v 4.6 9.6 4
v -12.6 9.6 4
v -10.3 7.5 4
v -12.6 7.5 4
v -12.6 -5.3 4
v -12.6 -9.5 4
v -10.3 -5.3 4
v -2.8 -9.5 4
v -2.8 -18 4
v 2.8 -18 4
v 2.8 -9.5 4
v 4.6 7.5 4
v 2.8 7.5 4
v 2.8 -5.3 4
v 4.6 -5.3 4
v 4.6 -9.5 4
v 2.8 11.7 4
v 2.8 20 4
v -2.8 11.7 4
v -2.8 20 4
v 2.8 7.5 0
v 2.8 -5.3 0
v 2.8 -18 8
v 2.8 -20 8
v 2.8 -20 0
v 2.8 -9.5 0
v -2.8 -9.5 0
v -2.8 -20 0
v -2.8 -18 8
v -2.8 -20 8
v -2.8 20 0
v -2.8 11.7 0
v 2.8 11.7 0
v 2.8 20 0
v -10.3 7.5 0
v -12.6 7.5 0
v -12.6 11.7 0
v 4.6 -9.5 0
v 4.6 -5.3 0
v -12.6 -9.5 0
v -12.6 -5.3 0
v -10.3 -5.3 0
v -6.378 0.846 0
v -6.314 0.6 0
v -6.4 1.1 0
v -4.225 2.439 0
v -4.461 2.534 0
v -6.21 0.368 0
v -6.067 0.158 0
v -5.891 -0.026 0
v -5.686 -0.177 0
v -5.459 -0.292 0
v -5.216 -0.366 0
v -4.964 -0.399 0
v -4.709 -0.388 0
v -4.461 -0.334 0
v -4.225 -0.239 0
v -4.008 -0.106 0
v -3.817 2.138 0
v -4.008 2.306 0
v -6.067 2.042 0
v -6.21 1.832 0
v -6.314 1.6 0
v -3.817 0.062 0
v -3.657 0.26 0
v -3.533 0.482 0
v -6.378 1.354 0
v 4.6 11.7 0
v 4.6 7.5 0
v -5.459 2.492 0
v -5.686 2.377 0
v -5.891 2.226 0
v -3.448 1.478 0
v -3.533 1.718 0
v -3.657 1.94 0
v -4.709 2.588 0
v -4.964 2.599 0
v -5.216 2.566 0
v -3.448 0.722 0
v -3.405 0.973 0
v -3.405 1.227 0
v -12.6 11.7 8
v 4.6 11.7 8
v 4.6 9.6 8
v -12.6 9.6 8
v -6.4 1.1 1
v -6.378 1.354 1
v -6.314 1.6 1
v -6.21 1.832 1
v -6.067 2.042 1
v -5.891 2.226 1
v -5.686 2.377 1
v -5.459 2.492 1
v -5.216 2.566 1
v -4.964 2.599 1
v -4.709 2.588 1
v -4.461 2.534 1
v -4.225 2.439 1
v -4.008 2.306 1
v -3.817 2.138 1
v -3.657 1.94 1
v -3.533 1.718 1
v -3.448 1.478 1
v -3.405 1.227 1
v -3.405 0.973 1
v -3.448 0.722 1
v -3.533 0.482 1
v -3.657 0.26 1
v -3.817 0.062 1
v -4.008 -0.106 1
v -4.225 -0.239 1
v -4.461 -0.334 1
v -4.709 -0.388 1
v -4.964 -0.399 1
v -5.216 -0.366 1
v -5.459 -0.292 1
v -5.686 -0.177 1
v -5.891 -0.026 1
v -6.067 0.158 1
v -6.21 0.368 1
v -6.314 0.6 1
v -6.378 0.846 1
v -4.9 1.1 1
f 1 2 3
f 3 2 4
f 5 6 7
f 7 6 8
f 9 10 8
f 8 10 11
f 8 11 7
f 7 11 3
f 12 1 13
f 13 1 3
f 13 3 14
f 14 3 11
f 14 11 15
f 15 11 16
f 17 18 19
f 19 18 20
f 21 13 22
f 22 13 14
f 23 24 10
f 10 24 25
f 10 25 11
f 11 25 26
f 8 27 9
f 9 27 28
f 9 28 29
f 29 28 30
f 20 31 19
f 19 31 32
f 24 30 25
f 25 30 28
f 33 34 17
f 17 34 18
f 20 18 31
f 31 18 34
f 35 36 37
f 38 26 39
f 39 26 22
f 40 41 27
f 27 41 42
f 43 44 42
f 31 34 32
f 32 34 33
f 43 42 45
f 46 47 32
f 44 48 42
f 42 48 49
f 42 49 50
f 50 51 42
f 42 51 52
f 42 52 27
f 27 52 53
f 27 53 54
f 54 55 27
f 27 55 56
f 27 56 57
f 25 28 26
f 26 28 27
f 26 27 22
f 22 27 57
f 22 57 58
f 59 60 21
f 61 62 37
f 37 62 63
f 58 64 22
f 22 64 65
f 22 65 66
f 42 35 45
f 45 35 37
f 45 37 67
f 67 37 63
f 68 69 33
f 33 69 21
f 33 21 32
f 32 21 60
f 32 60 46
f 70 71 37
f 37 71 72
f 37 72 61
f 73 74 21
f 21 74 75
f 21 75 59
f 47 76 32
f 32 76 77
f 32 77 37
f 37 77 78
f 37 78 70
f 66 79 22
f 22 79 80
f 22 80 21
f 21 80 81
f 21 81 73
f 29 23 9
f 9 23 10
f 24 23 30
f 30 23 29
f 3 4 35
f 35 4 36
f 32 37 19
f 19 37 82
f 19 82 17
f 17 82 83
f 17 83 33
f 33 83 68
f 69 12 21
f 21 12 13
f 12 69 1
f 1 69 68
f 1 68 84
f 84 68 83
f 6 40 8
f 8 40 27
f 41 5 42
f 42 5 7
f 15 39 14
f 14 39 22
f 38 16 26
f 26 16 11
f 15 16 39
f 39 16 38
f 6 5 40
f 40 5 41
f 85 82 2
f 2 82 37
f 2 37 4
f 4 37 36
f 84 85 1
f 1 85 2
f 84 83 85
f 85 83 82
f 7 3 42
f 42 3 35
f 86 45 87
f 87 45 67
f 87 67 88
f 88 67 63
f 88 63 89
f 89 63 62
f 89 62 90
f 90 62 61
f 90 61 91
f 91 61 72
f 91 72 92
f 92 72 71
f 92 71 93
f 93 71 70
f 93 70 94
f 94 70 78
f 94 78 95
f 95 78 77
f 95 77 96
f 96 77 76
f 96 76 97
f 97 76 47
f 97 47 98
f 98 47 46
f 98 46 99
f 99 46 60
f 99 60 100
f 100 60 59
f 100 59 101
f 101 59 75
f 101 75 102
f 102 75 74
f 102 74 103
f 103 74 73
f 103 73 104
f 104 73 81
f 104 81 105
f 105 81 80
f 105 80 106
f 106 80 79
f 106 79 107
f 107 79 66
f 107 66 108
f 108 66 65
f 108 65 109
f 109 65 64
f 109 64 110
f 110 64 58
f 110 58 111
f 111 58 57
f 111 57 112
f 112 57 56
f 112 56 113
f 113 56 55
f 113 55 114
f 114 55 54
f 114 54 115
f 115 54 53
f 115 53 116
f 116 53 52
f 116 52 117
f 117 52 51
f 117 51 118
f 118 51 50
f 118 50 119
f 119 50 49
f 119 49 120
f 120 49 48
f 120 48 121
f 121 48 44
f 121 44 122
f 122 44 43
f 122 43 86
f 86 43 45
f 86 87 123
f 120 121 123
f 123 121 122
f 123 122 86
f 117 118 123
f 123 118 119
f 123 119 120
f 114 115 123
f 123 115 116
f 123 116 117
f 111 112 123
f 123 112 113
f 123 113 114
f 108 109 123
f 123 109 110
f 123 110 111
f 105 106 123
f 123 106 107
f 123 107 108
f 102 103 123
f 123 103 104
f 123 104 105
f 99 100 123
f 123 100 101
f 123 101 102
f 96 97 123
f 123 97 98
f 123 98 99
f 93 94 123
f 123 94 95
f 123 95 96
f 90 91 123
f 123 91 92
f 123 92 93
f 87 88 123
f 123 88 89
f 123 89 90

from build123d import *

# Parameters (mm, degrees)
SKETCH1_W               = 5.6
SKETCH1_H               = 40
BOSS_EXTRUDE1_DEPTH     = 4
SKETCH2_W               = 5.6
SKETCH2_H               = 2
BOSS_EXTRUDE2_DEPTH     = 4
SKETCH4_W               = 4
SKETCH4_H               = 4.2
BOSS_EXTRUDE3_DEPTH     = 1.8
MIRROR2_COPY_1_SKETCH_W = 4
MIRROR2_COPY_1_SKETCH_H = 4.2
MIRROR2_COPY_1_DEPTH    = 1.8
SKETCH8_W               = 4
SKETCH8_H               = 4.2
BOSS_EXTRUDE4_DEPTH     = 8
SKETCH9_W               = 17.2
SKETCH9_H               = 2.1
BOSS_EXTRUDE5_DEPTH     = 4
SKETCH10_W              = 4
SKETCH10_H              = 12.8
BOSS_EXTRUDE6_DEPTH     = 7.5
SKETCH11_R              = 1.5
CUT_EXTRUDE1_DEPTH      = 1


with BuildPart() as part:
    # Sketch1 → Boss-Extrude1 (new body)
    with BuildSketch(Plane.XY):
        Rectangle(SKETCH1_W, SKETCH1_H)
    extrude(amount=BOSS_EXTRUDE1_DEPTH)

    # Sketch2 → Boss-Extrude2 (add)
    with BuildSketch(Plane.XY.offset(4)):
        with Locations((0, -19)):
            Rectangle(SKETCH2_W, SKETCH2_H)
    extrude(amount=BOSS_EXTRUDE2_DEPTH)

    # Sketch4 → Boss-Extrude3 (add)
    with BuildSketch(Plane.ZY.offset(2.8)):
        with Locations((2, 9.6)):
            Rectangle(SKETCH4_W, SKETCH4_H)
    boss_extrude3 = extrude(amount=BOSS_EXTRUDE3_DEPTH)

    # Mirror1: Boss-Extrude3 across plane
    add(boss_extrude3.mirror(Plane.ZY))

    # Mirror2: Boss-Extrude3 across plane
    add(boss_extrude3.mirror(Plane(origin=(0, 1.1, 0), x_dir=(0, 0, 1), z_dir=(0, -1, 0))))

    # Mirror2 copy 1 sketch → Mirror2 copy 1 (add)
    with BuildSketch(Plane(origin=(2.8, 2.2, 0), x_dir=(0, 0, 1), z_dir=(1, 0, 0))):
        with Locations((2, 9.6)):
            Rectangle(MIRROR2_COPY_1_SKETCH_W, MIRROR2_COPY_1_SKETCH_H)
    extrude(amount=MIRROR2_COPY_1_DEPTH)

    # Sketch8 → Boss-Extrude4 (add)
    with BuildSketch(Plane.ZY.offset(4.6)):
        with Locations((2, 9.6)):
            Rectangle(SKETCH8_W, SKETCH8_H)
        with Locations((2, -7.4)):
            Rectangle(SKETCH8_W, SKETCH8_H)
    extrude(amount=BOSS_EXTRUDE4_DEPTH)

    # Sketch9 → Boss-Extrude5 (add)
    with BuildSketch(Plane.XY.offset(4)):
        with Locations((-4, 10.65)):
            Rectangle(SKETCH9_W, SKETCH9_H)
    extrude(amount=BOSS_EXTRUDE5_DEPTH)

    # Sketch10 → Boss-Extrude6 (add)
    with BuildSketch(Plane.ZY.offset(2.8)):
        with Locations((2, 1.1)):
            Rectangle(SKETCH10_W, SKETCH10_H)
    extrude(amount=BOSS_EXTRUDE6_DEPTH)

    # Sketch11 → Cut-Extrude1 (cut)
    with BuildSketch(Plane(origin=(0, 0, 0), x_dir=(-1, 0, 0), z_dir=(0, 0, -1))):
        with Locations((4.9, 1.1)):
            Circle(SKETCH11_R)
    extrude(amount=-CUT_EXTRUDE1_DEPTH, mode=Mode.SUBTRACT)


solid = part.part
